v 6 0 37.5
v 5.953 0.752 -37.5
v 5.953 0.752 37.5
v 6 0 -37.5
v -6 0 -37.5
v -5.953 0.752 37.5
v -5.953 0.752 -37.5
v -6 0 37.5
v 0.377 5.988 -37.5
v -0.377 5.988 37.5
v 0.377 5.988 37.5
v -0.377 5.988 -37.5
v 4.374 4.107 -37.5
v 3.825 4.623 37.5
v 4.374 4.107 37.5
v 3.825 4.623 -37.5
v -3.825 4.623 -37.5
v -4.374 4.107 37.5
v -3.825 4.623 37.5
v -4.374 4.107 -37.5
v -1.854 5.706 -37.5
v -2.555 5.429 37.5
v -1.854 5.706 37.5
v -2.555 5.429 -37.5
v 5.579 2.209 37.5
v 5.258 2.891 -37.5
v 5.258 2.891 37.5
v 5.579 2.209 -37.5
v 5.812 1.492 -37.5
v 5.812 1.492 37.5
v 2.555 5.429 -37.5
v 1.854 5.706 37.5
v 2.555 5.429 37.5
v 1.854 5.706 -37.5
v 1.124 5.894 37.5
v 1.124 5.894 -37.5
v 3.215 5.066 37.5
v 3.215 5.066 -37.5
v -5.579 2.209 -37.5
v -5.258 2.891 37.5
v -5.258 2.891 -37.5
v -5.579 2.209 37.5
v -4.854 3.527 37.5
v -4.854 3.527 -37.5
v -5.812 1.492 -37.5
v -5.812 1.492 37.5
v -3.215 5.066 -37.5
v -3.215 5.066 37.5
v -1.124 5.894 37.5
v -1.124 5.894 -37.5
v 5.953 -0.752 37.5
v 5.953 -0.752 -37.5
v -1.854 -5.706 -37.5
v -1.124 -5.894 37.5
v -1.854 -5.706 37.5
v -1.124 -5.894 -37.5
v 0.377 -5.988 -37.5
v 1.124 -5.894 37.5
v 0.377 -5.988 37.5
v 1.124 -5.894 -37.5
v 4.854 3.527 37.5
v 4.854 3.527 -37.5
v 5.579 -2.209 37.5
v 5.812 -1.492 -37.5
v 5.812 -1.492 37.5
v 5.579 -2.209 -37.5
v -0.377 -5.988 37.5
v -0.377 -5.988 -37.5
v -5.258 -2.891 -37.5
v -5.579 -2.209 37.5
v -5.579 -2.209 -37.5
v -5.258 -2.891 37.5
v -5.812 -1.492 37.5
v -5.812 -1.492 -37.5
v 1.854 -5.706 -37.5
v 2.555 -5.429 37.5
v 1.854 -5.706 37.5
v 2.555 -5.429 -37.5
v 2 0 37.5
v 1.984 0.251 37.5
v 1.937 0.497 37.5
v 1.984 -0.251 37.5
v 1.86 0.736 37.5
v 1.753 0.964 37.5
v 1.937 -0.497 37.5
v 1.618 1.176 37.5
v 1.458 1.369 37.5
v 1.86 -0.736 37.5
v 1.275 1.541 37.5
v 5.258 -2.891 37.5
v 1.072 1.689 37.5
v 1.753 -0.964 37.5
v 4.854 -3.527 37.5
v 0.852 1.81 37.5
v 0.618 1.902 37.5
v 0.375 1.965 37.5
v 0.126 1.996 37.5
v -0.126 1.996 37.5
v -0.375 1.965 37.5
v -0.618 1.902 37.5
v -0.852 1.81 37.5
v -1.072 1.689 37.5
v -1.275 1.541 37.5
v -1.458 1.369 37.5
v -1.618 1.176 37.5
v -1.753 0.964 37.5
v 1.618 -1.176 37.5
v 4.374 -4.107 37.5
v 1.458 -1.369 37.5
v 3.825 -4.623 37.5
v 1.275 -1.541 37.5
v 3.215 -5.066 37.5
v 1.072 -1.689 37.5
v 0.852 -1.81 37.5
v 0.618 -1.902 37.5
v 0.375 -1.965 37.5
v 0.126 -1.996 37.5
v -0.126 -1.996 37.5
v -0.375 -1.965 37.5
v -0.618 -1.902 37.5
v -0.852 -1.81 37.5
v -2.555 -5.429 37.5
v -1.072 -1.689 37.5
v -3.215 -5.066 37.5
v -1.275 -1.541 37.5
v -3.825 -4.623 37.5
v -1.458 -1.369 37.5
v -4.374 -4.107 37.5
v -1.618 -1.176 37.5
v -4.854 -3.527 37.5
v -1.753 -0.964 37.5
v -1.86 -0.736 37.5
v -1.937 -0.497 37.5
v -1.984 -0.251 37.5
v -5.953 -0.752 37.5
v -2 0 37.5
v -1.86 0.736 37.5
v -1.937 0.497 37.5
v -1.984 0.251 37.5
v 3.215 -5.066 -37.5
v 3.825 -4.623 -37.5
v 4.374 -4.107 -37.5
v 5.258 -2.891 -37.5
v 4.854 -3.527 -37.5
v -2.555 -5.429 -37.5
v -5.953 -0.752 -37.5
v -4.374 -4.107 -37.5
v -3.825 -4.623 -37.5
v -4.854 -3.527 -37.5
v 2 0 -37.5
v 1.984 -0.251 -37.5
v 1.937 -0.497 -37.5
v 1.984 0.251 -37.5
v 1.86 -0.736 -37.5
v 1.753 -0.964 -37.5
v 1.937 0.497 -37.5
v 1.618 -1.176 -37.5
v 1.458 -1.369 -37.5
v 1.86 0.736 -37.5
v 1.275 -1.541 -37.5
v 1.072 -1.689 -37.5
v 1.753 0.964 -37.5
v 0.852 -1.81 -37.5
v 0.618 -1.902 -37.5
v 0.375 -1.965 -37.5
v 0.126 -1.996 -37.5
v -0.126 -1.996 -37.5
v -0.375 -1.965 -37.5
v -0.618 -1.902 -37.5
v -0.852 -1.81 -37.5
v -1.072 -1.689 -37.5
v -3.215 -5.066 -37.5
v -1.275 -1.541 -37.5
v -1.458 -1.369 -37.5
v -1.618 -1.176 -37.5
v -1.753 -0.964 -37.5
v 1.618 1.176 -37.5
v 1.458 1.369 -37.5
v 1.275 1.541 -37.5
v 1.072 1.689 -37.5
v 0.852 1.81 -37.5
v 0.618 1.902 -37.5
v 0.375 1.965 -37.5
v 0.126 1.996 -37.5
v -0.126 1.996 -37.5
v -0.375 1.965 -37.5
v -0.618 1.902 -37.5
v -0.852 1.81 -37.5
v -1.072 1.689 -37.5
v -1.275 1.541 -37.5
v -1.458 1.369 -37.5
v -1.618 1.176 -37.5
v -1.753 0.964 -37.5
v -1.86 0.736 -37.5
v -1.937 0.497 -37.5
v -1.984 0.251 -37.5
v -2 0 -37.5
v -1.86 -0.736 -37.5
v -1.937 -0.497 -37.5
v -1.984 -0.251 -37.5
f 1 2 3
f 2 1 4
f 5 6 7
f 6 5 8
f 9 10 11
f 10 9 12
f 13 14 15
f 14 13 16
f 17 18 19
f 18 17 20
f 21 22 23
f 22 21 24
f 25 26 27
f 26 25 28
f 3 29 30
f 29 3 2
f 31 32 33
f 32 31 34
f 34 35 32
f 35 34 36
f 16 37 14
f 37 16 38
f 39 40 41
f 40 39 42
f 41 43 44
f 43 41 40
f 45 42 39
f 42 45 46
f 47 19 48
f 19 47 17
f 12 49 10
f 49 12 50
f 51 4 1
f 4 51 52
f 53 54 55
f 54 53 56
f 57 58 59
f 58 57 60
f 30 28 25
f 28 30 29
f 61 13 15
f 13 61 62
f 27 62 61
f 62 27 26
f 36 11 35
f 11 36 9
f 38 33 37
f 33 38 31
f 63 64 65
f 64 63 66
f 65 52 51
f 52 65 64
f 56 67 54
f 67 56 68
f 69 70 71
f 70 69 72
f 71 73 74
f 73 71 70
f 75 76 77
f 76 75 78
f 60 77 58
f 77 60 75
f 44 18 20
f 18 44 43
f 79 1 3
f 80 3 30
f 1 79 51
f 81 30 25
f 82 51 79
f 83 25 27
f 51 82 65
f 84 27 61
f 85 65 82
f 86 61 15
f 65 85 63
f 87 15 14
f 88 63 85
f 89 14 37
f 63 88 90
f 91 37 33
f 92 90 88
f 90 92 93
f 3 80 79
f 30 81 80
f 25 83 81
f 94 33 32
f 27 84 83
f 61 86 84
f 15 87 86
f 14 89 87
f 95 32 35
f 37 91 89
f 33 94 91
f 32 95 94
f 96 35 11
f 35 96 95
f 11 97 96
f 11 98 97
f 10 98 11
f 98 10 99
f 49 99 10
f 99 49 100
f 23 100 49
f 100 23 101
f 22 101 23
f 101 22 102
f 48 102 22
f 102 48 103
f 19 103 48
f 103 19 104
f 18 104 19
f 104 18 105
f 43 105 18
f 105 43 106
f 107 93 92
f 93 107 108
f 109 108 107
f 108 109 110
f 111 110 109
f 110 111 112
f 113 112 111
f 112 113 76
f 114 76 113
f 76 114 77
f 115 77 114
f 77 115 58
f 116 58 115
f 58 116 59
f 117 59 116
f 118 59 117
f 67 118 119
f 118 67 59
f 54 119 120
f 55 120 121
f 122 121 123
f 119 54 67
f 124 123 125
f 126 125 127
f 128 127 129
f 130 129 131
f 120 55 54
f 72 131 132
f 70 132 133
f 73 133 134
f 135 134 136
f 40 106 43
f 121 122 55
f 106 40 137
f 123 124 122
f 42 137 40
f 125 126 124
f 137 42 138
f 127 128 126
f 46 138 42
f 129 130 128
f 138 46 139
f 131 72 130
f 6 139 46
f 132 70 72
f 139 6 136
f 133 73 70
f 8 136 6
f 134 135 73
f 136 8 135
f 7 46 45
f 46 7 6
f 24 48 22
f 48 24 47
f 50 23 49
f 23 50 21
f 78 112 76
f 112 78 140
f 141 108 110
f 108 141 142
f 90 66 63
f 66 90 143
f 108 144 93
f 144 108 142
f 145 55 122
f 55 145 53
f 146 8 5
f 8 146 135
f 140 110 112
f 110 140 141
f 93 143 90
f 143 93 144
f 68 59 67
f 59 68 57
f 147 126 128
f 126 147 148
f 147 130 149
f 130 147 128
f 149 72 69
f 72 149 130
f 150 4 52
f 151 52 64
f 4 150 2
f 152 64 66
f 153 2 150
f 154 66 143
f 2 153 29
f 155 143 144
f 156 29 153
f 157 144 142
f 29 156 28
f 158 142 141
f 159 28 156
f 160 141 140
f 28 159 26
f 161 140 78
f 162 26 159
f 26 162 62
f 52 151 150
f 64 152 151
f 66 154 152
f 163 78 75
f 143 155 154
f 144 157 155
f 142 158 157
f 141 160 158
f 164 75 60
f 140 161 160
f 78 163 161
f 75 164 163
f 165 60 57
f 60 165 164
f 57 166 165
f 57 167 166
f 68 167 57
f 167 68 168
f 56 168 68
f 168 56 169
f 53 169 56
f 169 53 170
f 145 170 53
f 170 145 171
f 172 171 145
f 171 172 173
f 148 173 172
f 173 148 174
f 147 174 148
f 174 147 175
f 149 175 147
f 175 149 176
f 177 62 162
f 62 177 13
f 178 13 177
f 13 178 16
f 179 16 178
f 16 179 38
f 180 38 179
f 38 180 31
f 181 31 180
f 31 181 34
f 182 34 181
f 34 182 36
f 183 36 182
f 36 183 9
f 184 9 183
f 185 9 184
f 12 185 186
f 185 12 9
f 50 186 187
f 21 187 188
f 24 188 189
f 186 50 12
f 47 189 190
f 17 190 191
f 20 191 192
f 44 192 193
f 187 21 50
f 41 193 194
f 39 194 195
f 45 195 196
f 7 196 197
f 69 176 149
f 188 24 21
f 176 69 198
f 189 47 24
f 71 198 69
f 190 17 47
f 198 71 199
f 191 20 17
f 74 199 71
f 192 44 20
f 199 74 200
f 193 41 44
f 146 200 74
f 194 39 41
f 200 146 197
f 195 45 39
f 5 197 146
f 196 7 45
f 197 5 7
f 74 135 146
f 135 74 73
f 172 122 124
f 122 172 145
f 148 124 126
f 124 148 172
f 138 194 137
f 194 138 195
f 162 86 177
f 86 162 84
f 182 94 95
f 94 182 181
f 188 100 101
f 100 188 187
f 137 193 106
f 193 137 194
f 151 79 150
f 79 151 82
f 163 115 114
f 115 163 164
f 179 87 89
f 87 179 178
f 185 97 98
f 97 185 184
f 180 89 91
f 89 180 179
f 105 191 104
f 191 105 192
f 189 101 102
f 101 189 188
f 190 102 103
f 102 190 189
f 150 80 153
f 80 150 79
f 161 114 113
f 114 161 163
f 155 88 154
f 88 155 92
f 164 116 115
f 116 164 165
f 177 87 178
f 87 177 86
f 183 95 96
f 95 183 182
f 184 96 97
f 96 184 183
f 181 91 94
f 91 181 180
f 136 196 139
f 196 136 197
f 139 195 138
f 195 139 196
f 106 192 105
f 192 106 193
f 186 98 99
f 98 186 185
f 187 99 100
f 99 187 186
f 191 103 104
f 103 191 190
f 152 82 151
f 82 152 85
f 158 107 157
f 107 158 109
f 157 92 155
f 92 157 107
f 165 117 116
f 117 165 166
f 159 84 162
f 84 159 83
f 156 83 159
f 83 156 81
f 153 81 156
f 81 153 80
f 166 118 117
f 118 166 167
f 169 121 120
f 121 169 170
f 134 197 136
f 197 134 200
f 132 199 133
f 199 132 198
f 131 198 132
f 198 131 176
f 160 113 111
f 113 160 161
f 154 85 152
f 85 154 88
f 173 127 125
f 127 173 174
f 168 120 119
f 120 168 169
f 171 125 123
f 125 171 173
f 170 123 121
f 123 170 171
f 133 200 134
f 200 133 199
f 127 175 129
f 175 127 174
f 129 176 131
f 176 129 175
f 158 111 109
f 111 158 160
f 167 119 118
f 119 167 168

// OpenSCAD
$fn = 50;


difference() {
	union() {
		translate(v = [0, 0, -37.5000000000]) {
			cylinder(h = 75, r = 6.0000000000);
		}
	}
	union() {
		translate(v = [0, 0, -100.0000000000]) {
			cylinder(h = 200, r = 2.0000000000);
		}
	}
}
